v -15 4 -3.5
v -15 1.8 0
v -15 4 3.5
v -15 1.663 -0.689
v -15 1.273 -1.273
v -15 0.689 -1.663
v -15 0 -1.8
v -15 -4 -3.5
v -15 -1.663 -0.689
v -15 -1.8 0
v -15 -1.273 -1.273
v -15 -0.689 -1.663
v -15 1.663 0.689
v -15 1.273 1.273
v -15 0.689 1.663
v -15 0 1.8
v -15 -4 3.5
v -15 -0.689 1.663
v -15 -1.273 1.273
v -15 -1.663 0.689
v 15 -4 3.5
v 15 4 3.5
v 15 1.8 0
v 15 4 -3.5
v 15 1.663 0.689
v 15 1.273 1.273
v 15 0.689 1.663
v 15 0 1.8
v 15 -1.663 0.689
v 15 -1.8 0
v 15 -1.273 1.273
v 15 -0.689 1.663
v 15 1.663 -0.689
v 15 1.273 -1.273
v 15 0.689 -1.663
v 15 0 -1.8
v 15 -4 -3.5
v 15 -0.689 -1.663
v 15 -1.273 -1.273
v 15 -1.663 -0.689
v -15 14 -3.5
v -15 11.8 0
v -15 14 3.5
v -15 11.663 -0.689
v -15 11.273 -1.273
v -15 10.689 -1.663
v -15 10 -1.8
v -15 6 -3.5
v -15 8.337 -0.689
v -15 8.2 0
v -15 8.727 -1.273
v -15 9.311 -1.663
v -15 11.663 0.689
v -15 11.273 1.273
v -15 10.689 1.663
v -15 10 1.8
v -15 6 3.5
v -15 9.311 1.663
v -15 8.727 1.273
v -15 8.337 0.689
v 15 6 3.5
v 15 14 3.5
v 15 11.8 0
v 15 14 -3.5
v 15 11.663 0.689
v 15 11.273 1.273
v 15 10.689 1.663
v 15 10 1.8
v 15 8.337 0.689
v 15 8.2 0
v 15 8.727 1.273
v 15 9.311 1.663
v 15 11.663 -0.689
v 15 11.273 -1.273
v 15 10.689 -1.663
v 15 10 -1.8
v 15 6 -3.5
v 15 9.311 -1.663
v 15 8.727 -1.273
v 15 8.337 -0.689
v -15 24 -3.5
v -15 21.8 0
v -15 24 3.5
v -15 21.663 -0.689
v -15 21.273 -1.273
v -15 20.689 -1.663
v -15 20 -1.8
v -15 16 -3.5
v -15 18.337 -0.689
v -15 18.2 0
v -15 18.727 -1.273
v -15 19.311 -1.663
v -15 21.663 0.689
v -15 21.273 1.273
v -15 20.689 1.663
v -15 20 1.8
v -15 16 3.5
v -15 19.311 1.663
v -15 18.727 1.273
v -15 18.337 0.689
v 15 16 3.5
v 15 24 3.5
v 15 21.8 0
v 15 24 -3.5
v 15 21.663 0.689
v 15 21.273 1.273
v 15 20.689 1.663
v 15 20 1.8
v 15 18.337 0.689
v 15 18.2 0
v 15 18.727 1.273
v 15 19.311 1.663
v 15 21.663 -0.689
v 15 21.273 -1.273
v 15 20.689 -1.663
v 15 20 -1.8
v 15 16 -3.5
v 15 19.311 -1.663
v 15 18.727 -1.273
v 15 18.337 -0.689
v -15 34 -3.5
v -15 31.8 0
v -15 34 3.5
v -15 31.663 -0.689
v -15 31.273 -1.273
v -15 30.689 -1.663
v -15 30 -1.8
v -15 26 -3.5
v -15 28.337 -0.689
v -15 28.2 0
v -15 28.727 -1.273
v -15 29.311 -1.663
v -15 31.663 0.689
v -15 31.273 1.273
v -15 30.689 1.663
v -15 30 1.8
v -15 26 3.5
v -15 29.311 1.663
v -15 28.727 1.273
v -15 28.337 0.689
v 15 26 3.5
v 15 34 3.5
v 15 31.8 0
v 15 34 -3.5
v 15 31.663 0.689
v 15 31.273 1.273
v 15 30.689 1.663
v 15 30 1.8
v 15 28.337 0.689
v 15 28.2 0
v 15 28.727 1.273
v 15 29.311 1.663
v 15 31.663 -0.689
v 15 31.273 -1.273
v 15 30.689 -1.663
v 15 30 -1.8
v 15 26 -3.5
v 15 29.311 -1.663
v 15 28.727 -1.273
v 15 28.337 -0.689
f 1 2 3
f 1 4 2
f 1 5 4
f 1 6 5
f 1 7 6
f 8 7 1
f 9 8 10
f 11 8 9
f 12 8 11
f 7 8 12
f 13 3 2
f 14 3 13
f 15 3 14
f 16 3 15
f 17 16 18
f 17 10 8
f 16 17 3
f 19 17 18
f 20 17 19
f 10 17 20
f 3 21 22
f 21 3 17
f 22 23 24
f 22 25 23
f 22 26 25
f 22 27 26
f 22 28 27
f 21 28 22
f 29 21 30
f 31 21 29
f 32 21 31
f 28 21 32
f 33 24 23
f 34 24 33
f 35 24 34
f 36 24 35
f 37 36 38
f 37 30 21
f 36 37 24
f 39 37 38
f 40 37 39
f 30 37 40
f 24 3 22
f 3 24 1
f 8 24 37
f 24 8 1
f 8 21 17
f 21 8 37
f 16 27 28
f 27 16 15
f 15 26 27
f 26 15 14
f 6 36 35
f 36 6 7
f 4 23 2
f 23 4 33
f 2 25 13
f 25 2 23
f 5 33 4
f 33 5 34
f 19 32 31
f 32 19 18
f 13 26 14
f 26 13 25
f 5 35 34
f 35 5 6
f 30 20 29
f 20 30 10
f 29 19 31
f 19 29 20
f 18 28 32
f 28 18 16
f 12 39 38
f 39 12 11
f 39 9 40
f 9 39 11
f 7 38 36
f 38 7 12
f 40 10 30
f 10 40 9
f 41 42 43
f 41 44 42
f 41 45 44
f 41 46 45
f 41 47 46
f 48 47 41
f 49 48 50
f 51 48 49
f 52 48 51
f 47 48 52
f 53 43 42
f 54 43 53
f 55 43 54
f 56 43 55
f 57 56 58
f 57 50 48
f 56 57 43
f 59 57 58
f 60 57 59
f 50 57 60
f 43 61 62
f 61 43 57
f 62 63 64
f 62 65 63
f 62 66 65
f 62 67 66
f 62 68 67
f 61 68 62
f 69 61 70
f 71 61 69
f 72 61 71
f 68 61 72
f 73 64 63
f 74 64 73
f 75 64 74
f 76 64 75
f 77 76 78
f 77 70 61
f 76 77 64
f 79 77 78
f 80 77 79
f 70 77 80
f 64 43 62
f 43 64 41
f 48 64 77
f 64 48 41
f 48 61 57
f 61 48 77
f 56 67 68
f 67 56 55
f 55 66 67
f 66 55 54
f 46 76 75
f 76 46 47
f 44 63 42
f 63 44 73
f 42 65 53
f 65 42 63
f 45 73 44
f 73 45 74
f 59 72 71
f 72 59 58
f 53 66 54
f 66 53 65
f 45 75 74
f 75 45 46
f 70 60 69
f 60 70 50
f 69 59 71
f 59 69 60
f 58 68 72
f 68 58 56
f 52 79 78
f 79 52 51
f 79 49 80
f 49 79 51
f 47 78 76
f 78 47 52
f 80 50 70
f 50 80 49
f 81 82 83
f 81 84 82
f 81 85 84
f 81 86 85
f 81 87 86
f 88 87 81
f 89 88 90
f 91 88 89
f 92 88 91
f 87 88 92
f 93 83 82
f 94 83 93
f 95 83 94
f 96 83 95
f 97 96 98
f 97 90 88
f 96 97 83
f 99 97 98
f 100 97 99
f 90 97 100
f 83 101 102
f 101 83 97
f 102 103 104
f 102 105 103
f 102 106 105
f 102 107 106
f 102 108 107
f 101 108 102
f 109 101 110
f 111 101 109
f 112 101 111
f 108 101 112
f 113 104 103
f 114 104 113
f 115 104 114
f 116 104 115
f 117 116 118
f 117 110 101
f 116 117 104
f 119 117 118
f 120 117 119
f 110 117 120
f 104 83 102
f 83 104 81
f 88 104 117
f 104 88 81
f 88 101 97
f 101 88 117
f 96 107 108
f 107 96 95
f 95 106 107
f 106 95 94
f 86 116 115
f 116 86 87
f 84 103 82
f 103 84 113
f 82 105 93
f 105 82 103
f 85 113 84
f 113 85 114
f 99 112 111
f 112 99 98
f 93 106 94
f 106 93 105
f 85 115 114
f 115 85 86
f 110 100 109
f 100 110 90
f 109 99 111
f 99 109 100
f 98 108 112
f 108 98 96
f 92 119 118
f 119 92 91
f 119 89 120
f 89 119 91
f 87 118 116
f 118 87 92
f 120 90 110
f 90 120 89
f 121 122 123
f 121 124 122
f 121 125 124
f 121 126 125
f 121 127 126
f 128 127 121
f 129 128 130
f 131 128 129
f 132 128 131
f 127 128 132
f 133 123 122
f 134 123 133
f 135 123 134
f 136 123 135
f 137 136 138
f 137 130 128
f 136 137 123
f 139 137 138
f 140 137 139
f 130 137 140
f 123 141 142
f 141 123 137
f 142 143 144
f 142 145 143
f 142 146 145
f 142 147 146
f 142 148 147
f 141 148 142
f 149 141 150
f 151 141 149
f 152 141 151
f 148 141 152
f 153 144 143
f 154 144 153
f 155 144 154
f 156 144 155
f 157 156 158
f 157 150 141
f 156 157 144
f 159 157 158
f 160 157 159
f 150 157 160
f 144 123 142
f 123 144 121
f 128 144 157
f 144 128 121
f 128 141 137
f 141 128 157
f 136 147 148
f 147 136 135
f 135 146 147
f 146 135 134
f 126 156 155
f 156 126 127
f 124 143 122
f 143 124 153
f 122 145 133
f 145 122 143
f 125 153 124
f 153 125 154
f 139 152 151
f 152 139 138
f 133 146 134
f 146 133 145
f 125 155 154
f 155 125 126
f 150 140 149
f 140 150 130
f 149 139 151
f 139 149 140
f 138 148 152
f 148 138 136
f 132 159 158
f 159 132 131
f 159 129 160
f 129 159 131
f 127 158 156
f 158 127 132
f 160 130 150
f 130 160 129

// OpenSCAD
/* 
   === RebeliX BoX ===

   sloupek pro drzak elektroniky RUMBA
   GNU GPL v3
   Martin Neruda <neruda@RebeliX.cz>
   http://www.RebeliX.cz
*/

//include <../../configuration.scad>
include <../../inc/functions.scad>

length = 30;

module base()
{
  cube([length,8,7],center=true);
}

module cuts()
{
  translate([length/2,0,0]) rotate([0,-90,0]) cylinder(d=3.6,h=length*2+1,$fn=16,center=true);
}

module sloupek()
{
  difference()
  {
	base();
	cuts();
  }
}

for(i=[0:10:30])
{
  translate([0,i,0]) sloupek();
}
